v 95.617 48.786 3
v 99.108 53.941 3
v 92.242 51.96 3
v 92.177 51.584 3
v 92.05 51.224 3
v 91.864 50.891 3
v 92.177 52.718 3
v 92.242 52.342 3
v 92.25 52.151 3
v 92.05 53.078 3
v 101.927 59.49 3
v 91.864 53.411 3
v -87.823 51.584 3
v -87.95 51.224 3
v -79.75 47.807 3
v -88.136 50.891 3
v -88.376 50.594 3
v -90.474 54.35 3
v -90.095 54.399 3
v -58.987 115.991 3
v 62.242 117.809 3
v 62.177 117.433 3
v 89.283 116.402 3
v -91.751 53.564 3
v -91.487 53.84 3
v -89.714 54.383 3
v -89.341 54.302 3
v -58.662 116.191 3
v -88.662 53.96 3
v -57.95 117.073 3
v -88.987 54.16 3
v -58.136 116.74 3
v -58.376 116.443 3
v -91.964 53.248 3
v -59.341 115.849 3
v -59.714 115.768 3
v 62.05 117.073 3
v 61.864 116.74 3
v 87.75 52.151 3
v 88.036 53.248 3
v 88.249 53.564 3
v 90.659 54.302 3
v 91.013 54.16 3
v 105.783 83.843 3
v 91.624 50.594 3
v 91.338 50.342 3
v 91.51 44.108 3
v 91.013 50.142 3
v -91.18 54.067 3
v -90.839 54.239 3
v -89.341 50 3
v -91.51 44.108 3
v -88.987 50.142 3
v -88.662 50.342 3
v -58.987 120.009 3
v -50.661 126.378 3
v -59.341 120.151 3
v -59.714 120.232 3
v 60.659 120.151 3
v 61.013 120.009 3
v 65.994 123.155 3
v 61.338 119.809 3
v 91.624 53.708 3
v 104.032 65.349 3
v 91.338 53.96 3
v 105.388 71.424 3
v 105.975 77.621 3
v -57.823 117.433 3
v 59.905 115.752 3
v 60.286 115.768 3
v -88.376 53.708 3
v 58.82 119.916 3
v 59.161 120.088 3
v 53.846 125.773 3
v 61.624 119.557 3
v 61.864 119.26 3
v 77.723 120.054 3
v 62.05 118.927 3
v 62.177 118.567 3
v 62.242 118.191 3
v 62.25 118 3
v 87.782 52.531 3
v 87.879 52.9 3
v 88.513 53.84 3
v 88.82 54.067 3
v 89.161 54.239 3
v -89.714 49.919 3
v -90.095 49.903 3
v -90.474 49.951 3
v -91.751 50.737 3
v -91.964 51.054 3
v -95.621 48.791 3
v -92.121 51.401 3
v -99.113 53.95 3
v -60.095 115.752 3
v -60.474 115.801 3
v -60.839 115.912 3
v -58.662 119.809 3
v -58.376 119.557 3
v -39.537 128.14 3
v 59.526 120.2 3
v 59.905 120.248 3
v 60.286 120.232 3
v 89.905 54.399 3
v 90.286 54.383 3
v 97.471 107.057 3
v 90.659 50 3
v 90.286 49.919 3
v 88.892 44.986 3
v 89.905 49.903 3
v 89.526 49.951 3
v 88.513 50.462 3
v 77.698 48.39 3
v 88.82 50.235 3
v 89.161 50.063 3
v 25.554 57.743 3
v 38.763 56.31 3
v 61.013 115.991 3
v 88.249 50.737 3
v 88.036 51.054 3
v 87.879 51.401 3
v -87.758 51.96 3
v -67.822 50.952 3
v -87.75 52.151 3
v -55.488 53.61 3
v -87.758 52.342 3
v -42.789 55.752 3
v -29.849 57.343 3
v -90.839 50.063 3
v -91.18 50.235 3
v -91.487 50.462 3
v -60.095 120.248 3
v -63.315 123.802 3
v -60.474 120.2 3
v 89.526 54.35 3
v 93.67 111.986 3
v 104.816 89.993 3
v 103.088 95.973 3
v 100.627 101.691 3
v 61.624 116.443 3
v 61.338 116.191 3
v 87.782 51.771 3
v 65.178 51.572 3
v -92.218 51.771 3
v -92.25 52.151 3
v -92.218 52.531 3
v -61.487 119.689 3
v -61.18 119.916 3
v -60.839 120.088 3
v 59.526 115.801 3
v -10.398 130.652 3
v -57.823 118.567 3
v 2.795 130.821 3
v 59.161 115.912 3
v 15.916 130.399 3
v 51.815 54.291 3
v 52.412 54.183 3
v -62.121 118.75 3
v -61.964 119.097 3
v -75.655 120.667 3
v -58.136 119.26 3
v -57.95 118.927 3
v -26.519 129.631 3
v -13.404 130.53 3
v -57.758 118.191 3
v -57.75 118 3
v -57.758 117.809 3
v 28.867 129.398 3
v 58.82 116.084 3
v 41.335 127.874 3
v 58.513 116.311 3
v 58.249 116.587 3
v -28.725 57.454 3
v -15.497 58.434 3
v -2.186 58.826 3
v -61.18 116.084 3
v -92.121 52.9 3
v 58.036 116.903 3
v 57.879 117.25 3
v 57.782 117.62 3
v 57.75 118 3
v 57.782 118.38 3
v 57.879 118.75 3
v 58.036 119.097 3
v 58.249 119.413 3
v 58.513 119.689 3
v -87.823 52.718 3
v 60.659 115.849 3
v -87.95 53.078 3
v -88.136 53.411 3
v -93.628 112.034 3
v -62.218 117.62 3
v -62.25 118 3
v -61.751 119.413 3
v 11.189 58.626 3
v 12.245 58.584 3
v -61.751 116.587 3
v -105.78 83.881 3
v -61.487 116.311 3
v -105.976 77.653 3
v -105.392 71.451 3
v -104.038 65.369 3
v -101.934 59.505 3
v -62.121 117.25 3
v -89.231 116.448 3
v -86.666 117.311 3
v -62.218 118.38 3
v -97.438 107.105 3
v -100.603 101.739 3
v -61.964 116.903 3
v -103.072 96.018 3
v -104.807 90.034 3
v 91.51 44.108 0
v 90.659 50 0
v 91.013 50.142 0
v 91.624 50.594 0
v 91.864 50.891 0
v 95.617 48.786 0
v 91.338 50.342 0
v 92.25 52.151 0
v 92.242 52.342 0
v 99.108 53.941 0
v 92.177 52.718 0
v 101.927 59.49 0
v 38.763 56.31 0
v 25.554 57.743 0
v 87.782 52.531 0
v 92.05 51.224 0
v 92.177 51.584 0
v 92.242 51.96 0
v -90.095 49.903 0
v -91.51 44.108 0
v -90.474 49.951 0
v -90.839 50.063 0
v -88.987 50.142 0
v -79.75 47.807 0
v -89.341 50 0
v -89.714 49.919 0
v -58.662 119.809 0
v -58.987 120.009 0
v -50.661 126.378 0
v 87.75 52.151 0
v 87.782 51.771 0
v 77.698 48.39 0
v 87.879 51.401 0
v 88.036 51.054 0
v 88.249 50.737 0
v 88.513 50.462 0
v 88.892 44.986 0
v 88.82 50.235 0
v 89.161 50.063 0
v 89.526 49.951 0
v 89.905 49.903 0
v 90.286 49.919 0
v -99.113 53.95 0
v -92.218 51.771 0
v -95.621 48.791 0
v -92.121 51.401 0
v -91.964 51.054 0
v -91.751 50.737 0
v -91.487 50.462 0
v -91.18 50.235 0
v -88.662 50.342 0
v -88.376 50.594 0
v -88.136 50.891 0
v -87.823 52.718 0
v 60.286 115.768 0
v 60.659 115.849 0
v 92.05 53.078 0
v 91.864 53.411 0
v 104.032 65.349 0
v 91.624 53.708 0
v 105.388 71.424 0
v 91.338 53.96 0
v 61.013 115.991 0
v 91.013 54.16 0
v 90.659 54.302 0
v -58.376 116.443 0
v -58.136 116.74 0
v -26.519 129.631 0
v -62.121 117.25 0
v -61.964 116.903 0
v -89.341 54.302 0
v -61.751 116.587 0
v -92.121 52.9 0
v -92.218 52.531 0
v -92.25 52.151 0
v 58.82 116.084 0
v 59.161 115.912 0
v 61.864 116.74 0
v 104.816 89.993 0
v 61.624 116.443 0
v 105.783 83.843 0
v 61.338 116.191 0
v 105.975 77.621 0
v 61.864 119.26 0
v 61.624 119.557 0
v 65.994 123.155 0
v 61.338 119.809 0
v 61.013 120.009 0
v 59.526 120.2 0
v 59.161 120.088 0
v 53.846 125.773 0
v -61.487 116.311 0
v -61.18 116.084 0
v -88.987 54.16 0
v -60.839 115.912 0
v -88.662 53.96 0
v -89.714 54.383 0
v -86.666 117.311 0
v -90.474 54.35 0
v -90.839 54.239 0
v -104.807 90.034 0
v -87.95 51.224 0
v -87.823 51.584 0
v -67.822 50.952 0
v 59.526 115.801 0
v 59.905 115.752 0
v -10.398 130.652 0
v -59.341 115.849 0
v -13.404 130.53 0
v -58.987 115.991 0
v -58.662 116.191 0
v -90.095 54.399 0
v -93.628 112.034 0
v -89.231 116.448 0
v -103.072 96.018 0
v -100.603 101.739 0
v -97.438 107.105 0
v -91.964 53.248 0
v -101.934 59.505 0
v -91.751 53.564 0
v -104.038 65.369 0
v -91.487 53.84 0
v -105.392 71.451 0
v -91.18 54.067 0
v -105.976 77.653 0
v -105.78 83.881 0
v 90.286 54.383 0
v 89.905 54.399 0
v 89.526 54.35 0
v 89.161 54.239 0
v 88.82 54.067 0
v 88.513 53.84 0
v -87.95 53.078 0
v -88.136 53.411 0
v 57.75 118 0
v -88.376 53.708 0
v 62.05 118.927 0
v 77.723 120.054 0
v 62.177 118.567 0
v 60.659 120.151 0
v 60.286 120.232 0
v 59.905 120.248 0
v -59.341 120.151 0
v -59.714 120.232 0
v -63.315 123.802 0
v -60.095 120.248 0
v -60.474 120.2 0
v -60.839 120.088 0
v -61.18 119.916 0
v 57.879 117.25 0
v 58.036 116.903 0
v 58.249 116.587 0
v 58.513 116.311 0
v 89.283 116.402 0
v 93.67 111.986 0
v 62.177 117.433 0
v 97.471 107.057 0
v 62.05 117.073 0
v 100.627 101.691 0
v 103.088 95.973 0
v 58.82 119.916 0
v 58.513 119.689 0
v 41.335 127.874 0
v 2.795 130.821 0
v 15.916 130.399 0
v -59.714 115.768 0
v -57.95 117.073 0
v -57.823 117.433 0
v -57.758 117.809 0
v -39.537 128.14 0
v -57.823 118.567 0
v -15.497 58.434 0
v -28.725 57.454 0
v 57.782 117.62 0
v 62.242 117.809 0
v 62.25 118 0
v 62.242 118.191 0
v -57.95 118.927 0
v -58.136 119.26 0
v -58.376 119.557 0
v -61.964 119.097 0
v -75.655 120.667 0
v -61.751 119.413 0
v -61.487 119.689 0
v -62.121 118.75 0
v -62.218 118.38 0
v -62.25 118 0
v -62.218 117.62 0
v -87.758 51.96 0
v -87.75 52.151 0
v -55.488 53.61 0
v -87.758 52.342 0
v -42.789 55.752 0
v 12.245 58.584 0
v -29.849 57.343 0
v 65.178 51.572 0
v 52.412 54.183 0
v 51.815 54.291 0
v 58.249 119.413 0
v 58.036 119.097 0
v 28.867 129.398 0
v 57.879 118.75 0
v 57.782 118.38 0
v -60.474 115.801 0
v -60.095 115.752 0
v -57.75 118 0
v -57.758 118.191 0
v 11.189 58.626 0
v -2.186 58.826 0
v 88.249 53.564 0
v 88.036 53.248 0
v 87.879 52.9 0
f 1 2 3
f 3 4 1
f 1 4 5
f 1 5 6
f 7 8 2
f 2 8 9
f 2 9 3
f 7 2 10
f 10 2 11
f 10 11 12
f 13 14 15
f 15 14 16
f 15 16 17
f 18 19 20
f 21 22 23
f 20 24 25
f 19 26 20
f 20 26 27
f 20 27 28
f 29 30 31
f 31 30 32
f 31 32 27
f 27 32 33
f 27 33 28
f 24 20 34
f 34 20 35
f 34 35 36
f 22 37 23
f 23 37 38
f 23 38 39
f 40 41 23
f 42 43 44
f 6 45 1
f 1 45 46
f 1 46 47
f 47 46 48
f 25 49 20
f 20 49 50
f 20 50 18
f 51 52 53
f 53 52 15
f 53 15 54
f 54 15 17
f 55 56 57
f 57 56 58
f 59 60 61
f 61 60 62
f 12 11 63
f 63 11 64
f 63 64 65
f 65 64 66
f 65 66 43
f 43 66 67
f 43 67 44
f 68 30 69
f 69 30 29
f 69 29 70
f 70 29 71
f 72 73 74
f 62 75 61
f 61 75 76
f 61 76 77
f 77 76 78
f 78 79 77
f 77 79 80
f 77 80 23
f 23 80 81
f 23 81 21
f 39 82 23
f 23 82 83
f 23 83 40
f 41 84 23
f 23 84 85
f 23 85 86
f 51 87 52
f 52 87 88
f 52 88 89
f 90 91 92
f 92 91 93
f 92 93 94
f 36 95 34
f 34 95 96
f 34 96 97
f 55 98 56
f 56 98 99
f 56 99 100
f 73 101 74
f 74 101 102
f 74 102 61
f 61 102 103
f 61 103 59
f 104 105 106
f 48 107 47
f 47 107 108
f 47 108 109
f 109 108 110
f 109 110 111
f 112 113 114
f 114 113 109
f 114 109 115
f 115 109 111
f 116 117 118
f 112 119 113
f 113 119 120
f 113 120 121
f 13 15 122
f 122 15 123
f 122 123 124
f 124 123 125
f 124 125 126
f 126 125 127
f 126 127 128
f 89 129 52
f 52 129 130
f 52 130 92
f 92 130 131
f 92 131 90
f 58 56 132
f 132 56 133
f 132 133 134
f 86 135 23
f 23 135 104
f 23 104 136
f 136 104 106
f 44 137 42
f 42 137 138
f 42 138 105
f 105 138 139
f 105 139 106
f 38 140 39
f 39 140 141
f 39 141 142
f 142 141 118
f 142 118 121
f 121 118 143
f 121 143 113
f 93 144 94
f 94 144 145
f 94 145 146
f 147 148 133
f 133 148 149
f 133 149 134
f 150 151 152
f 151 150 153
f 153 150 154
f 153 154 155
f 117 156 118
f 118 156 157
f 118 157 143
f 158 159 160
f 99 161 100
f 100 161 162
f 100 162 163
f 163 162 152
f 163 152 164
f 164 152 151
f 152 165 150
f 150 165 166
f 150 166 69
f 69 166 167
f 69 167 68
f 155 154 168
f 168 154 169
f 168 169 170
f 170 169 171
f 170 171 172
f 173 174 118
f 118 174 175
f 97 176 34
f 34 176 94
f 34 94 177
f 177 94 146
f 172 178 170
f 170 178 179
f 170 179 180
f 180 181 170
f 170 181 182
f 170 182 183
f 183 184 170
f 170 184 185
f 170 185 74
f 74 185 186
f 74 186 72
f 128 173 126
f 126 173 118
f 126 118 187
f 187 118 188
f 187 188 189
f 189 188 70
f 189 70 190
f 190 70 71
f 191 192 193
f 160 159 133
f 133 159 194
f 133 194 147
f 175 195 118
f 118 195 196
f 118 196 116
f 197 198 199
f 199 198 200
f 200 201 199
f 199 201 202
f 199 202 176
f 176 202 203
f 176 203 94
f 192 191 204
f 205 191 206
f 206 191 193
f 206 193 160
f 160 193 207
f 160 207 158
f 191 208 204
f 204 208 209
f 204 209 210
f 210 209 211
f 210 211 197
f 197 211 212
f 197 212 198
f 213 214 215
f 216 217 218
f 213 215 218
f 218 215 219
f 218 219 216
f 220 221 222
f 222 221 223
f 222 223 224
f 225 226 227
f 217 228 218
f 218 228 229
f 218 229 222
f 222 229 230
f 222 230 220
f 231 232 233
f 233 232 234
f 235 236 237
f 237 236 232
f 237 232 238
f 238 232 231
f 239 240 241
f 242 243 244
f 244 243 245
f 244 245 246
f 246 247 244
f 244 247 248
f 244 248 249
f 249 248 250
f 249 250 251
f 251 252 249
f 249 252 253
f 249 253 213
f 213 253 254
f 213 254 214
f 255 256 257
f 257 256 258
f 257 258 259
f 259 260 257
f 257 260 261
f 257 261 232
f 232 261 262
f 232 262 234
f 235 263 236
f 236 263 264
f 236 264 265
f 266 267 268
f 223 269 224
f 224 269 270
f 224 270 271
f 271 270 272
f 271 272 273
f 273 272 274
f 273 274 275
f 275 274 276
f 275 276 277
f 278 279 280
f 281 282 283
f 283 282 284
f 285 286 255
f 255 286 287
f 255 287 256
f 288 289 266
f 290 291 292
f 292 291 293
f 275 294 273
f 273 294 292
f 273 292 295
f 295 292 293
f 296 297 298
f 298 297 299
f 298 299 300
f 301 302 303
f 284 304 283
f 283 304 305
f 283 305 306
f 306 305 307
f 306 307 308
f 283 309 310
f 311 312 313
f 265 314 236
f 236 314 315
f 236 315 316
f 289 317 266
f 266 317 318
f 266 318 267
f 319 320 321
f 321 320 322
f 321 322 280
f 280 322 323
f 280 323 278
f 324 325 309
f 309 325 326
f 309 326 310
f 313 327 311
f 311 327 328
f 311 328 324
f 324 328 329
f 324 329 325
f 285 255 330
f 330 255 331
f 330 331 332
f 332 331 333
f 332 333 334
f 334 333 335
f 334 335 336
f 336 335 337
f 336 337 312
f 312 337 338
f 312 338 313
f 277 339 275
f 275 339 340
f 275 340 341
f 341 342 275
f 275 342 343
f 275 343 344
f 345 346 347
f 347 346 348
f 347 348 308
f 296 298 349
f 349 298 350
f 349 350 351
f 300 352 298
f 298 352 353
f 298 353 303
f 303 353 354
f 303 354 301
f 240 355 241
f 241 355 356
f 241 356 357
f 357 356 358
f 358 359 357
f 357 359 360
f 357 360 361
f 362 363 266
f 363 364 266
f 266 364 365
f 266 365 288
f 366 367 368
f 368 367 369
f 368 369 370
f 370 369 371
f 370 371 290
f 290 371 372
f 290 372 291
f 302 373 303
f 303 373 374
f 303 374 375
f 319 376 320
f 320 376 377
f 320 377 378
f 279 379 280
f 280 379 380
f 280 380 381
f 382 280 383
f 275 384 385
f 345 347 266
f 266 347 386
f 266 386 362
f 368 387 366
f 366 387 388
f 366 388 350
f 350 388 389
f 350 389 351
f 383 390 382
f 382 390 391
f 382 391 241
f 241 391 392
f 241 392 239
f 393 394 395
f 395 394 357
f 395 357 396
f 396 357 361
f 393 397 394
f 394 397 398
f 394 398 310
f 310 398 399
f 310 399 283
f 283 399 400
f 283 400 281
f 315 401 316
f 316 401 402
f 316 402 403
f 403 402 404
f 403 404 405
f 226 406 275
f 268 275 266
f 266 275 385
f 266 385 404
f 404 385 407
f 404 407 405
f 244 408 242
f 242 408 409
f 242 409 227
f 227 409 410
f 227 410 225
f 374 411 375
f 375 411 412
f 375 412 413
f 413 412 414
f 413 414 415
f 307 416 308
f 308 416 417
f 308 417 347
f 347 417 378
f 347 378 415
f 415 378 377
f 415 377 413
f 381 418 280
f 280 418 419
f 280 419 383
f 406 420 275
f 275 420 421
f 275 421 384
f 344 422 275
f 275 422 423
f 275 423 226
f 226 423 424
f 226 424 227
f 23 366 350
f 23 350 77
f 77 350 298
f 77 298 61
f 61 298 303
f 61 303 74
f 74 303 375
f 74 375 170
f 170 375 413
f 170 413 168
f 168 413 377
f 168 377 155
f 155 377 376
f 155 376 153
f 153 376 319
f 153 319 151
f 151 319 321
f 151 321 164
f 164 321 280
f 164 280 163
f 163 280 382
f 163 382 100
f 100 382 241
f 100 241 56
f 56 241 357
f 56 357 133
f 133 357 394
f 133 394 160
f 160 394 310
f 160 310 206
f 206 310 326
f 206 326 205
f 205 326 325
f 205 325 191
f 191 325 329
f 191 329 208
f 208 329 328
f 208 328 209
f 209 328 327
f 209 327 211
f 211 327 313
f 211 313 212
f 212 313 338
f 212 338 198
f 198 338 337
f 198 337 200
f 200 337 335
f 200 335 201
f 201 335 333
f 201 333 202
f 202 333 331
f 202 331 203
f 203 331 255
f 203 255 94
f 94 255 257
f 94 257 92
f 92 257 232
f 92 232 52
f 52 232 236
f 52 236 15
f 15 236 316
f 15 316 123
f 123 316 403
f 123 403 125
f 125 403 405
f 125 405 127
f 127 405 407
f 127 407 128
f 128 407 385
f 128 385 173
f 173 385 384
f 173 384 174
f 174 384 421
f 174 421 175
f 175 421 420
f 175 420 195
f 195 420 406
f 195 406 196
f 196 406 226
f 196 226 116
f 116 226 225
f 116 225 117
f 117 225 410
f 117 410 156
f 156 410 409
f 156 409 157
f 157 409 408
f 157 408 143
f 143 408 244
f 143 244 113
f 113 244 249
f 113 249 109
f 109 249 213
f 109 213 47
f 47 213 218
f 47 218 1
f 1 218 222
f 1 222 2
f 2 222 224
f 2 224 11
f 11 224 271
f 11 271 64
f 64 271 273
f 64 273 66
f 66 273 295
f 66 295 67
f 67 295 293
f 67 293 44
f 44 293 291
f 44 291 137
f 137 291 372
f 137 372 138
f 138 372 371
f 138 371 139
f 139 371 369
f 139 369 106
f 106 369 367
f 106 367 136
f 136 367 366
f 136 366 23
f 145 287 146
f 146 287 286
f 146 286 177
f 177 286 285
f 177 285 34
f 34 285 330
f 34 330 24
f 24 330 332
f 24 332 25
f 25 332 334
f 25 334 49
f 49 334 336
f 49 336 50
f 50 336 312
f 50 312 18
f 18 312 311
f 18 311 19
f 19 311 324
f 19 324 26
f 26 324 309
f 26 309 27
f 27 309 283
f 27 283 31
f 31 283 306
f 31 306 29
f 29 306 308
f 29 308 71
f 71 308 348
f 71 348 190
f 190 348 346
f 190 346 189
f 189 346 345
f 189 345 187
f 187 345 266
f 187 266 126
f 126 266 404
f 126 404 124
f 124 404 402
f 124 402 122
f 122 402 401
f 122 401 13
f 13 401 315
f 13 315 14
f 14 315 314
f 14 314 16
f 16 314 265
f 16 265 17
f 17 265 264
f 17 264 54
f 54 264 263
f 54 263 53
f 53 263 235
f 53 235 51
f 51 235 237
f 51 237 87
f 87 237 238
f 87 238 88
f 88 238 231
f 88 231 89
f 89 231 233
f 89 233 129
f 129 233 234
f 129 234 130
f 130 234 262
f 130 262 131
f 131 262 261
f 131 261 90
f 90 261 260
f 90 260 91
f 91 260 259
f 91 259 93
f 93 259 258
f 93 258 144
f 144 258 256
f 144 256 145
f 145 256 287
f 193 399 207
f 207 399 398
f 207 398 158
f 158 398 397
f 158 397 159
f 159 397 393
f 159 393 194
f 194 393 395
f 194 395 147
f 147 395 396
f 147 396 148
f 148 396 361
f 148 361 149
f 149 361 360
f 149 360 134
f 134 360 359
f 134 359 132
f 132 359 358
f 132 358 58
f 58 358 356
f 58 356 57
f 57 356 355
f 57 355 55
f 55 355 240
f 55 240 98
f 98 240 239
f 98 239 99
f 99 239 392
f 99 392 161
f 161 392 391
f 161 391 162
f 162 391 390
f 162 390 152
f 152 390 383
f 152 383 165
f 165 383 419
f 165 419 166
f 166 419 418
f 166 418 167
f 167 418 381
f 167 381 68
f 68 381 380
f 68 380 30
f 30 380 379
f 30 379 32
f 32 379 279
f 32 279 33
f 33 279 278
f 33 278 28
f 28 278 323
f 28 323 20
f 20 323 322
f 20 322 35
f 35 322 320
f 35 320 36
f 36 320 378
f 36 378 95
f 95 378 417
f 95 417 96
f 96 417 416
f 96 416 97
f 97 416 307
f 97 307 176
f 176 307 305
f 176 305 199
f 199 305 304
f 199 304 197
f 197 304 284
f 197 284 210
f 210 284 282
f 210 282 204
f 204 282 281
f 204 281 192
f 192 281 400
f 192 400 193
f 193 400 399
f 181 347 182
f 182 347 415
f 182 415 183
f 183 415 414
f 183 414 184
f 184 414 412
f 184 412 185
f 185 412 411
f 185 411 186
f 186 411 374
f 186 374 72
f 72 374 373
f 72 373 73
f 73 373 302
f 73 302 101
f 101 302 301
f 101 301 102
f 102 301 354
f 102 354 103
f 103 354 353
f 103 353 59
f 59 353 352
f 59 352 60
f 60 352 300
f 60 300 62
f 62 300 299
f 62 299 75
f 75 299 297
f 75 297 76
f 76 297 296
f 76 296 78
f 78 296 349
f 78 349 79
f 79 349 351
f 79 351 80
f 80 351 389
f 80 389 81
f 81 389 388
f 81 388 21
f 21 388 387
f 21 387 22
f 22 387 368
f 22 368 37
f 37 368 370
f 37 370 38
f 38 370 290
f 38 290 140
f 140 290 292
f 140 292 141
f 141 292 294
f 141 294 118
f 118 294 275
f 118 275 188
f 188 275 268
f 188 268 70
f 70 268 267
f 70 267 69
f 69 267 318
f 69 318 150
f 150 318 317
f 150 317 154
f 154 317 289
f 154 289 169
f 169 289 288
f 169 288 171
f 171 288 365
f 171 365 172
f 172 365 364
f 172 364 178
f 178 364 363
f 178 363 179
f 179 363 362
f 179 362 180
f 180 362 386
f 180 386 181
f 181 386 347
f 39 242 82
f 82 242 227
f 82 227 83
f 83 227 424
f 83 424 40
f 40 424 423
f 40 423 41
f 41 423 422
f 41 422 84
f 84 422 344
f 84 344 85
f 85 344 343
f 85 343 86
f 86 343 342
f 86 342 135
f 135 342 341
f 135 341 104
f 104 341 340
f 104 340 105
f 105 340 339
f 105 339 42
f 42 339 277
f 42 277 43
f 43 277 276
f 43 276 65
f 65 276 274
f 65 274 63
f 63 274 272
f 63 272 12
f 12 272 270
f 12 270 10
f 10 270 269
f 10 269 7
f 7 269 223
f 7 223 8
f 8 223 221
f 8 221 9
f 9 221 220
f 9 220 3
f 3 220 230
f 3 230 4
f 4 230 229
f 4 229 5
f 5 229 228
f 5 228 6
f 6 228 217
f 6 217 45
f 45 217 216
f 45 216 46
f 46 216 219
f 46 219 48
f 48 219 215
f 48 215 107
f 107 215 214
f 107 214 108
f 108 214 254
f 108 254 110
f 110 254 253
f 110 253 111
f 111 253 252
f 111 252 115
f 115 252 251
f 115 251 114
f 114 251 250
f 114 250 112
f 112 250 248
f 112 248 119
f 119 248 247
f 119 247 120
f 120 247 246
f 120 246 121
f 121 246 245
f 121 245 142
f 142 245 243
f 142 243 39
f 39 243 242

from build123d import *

# Parameters (mm, degrees)
CROQUIS1_R              = 2.25
SALIENTE_EXTRUIR1_DEPTH = 3


with BuildPart() as part:
    # Croquis1 → Saliente-Extruir1 (new body)
    with BuildSketch(Plane(origin=(0, 0, 0), x_dir=(-1, 0, 0), z_dir=(0, 0, 1))):
        with BuildLine():
            ThreePointArc((89.230623206, -116.44830451), (105.975312976, -80.770154924), (91.510495129, -44.10840322))
            add(Edge.make_bspline(
                [(91.510495129, -44.10840322), (84.127759627, -46.626480737), (76.659755812, -48.793582277), (61.567714608, -52.485529927), (53.943636753, -54.010209481), (42.395431338, -55.835856743), (38.534661436, -56.365996553), (30.807441475, -57.271160746), (26.938391186, -57.646594701), (15.315156999, -58.544821608), (7.544966548, -58.840628212), (-2.194410299, -58.832626174), (-4.144610508, -58.812018876), (-8.036264676, -58.733045352), (-9.978956608, -58.674697545), (-15.797685427, -58.443422776), (-19.664385347, -58.214324696), (-31.227228522, -57.302895154), (-38.886271373, -56.397367959), (-54.103241252, -53.978001601), (-61.66117651, -52.464211948), (-76.669501884, -48.789641951), (-84.119939601, -46.629147964), (-91.510495129, -44.10840322)],
                knots=[0, 0, 0, 0, 0.125, 0.125, 0.25, 0.25, 0.3125, 0.3125, 0.375, 0.375, 0.5, 0.5, 0.53125, 0.53125, 0.5625, 0.5625, 0.625, 0.625, 0.75, 0.75, 0.875, 0.875, 1, 1, 1, 1], degree=3))
            ThreePointArc((-91.510495129, -44.10840322), (-105.976396022, -80.735404374), (-89.282652322, -116.402173549))
            add(Edge.make_bspline(
                [(-89.282652322, -116.402173549), (-82.084427391, -118.871103079), (-74.801680613, -120.994537875), (-60.082232302, -124.612096128), (-52.645335382, -126.10542091), (-41.379555775, -127.893992917), (-37.614074487, -128.413191154), (-30.076442699, -129.300162486), (-26.302159817, -129.668099271), (-14.963168802, -130.548836526), (-7.382405934, -130.839774929), (2.120284858, -130.833963635), (4.022505287, -130.814238018), (7.817943392, -130.737887871), (13.501947355, -130.568056968), (19.158656691, -130.233305689), (30.435872975, -129.345060023), (37.90580458, -128.46158479), (52.74714565, -126.099341043), (60.118593514, -124.620804538), (74.756372315, -121.028591029), (82.022853845, -118.915823941), (89.230623206, -116.44830451)],
                knots=[0, 0, 0, 0, 0.125, 0.125, 0.25, 0.25, 0.3125, 0.3125, 0.375, 0.375, 0.5, 0.5, 0.53125, 0.53125, 0.5625, 0.625, 0.625, 0.75, 0.75, 0.875, 0.875, 1, 1, 1, 1], degree=3))
        make_face()
        with Locations(Location((90, -52.150876122, 0), (0, 0, 180))):
            Circle(CROQUIS1_R, mode=Mode.SUBTRACT)
        with Locations(Location((60, -118, 0), (0, 0, 180))):
            Circle(CROQUIS1_R, mode=Mode.SUBTRACT)
        with Locations(Location((-60, -118, 0), (0, 0, 180))):
            Circle(CROQUIS1_R, mode=Mode.SUBTRACT)
        with Locations(Location((-90, -52.150876122, 0), (0, 0, 180))):
            Circle(CROQUIS1_R, mode=Mode.SUBTRACT)
    extrude(amount=SALIENTE_EXTRUIR1_DEPTH)


solid = part.part
